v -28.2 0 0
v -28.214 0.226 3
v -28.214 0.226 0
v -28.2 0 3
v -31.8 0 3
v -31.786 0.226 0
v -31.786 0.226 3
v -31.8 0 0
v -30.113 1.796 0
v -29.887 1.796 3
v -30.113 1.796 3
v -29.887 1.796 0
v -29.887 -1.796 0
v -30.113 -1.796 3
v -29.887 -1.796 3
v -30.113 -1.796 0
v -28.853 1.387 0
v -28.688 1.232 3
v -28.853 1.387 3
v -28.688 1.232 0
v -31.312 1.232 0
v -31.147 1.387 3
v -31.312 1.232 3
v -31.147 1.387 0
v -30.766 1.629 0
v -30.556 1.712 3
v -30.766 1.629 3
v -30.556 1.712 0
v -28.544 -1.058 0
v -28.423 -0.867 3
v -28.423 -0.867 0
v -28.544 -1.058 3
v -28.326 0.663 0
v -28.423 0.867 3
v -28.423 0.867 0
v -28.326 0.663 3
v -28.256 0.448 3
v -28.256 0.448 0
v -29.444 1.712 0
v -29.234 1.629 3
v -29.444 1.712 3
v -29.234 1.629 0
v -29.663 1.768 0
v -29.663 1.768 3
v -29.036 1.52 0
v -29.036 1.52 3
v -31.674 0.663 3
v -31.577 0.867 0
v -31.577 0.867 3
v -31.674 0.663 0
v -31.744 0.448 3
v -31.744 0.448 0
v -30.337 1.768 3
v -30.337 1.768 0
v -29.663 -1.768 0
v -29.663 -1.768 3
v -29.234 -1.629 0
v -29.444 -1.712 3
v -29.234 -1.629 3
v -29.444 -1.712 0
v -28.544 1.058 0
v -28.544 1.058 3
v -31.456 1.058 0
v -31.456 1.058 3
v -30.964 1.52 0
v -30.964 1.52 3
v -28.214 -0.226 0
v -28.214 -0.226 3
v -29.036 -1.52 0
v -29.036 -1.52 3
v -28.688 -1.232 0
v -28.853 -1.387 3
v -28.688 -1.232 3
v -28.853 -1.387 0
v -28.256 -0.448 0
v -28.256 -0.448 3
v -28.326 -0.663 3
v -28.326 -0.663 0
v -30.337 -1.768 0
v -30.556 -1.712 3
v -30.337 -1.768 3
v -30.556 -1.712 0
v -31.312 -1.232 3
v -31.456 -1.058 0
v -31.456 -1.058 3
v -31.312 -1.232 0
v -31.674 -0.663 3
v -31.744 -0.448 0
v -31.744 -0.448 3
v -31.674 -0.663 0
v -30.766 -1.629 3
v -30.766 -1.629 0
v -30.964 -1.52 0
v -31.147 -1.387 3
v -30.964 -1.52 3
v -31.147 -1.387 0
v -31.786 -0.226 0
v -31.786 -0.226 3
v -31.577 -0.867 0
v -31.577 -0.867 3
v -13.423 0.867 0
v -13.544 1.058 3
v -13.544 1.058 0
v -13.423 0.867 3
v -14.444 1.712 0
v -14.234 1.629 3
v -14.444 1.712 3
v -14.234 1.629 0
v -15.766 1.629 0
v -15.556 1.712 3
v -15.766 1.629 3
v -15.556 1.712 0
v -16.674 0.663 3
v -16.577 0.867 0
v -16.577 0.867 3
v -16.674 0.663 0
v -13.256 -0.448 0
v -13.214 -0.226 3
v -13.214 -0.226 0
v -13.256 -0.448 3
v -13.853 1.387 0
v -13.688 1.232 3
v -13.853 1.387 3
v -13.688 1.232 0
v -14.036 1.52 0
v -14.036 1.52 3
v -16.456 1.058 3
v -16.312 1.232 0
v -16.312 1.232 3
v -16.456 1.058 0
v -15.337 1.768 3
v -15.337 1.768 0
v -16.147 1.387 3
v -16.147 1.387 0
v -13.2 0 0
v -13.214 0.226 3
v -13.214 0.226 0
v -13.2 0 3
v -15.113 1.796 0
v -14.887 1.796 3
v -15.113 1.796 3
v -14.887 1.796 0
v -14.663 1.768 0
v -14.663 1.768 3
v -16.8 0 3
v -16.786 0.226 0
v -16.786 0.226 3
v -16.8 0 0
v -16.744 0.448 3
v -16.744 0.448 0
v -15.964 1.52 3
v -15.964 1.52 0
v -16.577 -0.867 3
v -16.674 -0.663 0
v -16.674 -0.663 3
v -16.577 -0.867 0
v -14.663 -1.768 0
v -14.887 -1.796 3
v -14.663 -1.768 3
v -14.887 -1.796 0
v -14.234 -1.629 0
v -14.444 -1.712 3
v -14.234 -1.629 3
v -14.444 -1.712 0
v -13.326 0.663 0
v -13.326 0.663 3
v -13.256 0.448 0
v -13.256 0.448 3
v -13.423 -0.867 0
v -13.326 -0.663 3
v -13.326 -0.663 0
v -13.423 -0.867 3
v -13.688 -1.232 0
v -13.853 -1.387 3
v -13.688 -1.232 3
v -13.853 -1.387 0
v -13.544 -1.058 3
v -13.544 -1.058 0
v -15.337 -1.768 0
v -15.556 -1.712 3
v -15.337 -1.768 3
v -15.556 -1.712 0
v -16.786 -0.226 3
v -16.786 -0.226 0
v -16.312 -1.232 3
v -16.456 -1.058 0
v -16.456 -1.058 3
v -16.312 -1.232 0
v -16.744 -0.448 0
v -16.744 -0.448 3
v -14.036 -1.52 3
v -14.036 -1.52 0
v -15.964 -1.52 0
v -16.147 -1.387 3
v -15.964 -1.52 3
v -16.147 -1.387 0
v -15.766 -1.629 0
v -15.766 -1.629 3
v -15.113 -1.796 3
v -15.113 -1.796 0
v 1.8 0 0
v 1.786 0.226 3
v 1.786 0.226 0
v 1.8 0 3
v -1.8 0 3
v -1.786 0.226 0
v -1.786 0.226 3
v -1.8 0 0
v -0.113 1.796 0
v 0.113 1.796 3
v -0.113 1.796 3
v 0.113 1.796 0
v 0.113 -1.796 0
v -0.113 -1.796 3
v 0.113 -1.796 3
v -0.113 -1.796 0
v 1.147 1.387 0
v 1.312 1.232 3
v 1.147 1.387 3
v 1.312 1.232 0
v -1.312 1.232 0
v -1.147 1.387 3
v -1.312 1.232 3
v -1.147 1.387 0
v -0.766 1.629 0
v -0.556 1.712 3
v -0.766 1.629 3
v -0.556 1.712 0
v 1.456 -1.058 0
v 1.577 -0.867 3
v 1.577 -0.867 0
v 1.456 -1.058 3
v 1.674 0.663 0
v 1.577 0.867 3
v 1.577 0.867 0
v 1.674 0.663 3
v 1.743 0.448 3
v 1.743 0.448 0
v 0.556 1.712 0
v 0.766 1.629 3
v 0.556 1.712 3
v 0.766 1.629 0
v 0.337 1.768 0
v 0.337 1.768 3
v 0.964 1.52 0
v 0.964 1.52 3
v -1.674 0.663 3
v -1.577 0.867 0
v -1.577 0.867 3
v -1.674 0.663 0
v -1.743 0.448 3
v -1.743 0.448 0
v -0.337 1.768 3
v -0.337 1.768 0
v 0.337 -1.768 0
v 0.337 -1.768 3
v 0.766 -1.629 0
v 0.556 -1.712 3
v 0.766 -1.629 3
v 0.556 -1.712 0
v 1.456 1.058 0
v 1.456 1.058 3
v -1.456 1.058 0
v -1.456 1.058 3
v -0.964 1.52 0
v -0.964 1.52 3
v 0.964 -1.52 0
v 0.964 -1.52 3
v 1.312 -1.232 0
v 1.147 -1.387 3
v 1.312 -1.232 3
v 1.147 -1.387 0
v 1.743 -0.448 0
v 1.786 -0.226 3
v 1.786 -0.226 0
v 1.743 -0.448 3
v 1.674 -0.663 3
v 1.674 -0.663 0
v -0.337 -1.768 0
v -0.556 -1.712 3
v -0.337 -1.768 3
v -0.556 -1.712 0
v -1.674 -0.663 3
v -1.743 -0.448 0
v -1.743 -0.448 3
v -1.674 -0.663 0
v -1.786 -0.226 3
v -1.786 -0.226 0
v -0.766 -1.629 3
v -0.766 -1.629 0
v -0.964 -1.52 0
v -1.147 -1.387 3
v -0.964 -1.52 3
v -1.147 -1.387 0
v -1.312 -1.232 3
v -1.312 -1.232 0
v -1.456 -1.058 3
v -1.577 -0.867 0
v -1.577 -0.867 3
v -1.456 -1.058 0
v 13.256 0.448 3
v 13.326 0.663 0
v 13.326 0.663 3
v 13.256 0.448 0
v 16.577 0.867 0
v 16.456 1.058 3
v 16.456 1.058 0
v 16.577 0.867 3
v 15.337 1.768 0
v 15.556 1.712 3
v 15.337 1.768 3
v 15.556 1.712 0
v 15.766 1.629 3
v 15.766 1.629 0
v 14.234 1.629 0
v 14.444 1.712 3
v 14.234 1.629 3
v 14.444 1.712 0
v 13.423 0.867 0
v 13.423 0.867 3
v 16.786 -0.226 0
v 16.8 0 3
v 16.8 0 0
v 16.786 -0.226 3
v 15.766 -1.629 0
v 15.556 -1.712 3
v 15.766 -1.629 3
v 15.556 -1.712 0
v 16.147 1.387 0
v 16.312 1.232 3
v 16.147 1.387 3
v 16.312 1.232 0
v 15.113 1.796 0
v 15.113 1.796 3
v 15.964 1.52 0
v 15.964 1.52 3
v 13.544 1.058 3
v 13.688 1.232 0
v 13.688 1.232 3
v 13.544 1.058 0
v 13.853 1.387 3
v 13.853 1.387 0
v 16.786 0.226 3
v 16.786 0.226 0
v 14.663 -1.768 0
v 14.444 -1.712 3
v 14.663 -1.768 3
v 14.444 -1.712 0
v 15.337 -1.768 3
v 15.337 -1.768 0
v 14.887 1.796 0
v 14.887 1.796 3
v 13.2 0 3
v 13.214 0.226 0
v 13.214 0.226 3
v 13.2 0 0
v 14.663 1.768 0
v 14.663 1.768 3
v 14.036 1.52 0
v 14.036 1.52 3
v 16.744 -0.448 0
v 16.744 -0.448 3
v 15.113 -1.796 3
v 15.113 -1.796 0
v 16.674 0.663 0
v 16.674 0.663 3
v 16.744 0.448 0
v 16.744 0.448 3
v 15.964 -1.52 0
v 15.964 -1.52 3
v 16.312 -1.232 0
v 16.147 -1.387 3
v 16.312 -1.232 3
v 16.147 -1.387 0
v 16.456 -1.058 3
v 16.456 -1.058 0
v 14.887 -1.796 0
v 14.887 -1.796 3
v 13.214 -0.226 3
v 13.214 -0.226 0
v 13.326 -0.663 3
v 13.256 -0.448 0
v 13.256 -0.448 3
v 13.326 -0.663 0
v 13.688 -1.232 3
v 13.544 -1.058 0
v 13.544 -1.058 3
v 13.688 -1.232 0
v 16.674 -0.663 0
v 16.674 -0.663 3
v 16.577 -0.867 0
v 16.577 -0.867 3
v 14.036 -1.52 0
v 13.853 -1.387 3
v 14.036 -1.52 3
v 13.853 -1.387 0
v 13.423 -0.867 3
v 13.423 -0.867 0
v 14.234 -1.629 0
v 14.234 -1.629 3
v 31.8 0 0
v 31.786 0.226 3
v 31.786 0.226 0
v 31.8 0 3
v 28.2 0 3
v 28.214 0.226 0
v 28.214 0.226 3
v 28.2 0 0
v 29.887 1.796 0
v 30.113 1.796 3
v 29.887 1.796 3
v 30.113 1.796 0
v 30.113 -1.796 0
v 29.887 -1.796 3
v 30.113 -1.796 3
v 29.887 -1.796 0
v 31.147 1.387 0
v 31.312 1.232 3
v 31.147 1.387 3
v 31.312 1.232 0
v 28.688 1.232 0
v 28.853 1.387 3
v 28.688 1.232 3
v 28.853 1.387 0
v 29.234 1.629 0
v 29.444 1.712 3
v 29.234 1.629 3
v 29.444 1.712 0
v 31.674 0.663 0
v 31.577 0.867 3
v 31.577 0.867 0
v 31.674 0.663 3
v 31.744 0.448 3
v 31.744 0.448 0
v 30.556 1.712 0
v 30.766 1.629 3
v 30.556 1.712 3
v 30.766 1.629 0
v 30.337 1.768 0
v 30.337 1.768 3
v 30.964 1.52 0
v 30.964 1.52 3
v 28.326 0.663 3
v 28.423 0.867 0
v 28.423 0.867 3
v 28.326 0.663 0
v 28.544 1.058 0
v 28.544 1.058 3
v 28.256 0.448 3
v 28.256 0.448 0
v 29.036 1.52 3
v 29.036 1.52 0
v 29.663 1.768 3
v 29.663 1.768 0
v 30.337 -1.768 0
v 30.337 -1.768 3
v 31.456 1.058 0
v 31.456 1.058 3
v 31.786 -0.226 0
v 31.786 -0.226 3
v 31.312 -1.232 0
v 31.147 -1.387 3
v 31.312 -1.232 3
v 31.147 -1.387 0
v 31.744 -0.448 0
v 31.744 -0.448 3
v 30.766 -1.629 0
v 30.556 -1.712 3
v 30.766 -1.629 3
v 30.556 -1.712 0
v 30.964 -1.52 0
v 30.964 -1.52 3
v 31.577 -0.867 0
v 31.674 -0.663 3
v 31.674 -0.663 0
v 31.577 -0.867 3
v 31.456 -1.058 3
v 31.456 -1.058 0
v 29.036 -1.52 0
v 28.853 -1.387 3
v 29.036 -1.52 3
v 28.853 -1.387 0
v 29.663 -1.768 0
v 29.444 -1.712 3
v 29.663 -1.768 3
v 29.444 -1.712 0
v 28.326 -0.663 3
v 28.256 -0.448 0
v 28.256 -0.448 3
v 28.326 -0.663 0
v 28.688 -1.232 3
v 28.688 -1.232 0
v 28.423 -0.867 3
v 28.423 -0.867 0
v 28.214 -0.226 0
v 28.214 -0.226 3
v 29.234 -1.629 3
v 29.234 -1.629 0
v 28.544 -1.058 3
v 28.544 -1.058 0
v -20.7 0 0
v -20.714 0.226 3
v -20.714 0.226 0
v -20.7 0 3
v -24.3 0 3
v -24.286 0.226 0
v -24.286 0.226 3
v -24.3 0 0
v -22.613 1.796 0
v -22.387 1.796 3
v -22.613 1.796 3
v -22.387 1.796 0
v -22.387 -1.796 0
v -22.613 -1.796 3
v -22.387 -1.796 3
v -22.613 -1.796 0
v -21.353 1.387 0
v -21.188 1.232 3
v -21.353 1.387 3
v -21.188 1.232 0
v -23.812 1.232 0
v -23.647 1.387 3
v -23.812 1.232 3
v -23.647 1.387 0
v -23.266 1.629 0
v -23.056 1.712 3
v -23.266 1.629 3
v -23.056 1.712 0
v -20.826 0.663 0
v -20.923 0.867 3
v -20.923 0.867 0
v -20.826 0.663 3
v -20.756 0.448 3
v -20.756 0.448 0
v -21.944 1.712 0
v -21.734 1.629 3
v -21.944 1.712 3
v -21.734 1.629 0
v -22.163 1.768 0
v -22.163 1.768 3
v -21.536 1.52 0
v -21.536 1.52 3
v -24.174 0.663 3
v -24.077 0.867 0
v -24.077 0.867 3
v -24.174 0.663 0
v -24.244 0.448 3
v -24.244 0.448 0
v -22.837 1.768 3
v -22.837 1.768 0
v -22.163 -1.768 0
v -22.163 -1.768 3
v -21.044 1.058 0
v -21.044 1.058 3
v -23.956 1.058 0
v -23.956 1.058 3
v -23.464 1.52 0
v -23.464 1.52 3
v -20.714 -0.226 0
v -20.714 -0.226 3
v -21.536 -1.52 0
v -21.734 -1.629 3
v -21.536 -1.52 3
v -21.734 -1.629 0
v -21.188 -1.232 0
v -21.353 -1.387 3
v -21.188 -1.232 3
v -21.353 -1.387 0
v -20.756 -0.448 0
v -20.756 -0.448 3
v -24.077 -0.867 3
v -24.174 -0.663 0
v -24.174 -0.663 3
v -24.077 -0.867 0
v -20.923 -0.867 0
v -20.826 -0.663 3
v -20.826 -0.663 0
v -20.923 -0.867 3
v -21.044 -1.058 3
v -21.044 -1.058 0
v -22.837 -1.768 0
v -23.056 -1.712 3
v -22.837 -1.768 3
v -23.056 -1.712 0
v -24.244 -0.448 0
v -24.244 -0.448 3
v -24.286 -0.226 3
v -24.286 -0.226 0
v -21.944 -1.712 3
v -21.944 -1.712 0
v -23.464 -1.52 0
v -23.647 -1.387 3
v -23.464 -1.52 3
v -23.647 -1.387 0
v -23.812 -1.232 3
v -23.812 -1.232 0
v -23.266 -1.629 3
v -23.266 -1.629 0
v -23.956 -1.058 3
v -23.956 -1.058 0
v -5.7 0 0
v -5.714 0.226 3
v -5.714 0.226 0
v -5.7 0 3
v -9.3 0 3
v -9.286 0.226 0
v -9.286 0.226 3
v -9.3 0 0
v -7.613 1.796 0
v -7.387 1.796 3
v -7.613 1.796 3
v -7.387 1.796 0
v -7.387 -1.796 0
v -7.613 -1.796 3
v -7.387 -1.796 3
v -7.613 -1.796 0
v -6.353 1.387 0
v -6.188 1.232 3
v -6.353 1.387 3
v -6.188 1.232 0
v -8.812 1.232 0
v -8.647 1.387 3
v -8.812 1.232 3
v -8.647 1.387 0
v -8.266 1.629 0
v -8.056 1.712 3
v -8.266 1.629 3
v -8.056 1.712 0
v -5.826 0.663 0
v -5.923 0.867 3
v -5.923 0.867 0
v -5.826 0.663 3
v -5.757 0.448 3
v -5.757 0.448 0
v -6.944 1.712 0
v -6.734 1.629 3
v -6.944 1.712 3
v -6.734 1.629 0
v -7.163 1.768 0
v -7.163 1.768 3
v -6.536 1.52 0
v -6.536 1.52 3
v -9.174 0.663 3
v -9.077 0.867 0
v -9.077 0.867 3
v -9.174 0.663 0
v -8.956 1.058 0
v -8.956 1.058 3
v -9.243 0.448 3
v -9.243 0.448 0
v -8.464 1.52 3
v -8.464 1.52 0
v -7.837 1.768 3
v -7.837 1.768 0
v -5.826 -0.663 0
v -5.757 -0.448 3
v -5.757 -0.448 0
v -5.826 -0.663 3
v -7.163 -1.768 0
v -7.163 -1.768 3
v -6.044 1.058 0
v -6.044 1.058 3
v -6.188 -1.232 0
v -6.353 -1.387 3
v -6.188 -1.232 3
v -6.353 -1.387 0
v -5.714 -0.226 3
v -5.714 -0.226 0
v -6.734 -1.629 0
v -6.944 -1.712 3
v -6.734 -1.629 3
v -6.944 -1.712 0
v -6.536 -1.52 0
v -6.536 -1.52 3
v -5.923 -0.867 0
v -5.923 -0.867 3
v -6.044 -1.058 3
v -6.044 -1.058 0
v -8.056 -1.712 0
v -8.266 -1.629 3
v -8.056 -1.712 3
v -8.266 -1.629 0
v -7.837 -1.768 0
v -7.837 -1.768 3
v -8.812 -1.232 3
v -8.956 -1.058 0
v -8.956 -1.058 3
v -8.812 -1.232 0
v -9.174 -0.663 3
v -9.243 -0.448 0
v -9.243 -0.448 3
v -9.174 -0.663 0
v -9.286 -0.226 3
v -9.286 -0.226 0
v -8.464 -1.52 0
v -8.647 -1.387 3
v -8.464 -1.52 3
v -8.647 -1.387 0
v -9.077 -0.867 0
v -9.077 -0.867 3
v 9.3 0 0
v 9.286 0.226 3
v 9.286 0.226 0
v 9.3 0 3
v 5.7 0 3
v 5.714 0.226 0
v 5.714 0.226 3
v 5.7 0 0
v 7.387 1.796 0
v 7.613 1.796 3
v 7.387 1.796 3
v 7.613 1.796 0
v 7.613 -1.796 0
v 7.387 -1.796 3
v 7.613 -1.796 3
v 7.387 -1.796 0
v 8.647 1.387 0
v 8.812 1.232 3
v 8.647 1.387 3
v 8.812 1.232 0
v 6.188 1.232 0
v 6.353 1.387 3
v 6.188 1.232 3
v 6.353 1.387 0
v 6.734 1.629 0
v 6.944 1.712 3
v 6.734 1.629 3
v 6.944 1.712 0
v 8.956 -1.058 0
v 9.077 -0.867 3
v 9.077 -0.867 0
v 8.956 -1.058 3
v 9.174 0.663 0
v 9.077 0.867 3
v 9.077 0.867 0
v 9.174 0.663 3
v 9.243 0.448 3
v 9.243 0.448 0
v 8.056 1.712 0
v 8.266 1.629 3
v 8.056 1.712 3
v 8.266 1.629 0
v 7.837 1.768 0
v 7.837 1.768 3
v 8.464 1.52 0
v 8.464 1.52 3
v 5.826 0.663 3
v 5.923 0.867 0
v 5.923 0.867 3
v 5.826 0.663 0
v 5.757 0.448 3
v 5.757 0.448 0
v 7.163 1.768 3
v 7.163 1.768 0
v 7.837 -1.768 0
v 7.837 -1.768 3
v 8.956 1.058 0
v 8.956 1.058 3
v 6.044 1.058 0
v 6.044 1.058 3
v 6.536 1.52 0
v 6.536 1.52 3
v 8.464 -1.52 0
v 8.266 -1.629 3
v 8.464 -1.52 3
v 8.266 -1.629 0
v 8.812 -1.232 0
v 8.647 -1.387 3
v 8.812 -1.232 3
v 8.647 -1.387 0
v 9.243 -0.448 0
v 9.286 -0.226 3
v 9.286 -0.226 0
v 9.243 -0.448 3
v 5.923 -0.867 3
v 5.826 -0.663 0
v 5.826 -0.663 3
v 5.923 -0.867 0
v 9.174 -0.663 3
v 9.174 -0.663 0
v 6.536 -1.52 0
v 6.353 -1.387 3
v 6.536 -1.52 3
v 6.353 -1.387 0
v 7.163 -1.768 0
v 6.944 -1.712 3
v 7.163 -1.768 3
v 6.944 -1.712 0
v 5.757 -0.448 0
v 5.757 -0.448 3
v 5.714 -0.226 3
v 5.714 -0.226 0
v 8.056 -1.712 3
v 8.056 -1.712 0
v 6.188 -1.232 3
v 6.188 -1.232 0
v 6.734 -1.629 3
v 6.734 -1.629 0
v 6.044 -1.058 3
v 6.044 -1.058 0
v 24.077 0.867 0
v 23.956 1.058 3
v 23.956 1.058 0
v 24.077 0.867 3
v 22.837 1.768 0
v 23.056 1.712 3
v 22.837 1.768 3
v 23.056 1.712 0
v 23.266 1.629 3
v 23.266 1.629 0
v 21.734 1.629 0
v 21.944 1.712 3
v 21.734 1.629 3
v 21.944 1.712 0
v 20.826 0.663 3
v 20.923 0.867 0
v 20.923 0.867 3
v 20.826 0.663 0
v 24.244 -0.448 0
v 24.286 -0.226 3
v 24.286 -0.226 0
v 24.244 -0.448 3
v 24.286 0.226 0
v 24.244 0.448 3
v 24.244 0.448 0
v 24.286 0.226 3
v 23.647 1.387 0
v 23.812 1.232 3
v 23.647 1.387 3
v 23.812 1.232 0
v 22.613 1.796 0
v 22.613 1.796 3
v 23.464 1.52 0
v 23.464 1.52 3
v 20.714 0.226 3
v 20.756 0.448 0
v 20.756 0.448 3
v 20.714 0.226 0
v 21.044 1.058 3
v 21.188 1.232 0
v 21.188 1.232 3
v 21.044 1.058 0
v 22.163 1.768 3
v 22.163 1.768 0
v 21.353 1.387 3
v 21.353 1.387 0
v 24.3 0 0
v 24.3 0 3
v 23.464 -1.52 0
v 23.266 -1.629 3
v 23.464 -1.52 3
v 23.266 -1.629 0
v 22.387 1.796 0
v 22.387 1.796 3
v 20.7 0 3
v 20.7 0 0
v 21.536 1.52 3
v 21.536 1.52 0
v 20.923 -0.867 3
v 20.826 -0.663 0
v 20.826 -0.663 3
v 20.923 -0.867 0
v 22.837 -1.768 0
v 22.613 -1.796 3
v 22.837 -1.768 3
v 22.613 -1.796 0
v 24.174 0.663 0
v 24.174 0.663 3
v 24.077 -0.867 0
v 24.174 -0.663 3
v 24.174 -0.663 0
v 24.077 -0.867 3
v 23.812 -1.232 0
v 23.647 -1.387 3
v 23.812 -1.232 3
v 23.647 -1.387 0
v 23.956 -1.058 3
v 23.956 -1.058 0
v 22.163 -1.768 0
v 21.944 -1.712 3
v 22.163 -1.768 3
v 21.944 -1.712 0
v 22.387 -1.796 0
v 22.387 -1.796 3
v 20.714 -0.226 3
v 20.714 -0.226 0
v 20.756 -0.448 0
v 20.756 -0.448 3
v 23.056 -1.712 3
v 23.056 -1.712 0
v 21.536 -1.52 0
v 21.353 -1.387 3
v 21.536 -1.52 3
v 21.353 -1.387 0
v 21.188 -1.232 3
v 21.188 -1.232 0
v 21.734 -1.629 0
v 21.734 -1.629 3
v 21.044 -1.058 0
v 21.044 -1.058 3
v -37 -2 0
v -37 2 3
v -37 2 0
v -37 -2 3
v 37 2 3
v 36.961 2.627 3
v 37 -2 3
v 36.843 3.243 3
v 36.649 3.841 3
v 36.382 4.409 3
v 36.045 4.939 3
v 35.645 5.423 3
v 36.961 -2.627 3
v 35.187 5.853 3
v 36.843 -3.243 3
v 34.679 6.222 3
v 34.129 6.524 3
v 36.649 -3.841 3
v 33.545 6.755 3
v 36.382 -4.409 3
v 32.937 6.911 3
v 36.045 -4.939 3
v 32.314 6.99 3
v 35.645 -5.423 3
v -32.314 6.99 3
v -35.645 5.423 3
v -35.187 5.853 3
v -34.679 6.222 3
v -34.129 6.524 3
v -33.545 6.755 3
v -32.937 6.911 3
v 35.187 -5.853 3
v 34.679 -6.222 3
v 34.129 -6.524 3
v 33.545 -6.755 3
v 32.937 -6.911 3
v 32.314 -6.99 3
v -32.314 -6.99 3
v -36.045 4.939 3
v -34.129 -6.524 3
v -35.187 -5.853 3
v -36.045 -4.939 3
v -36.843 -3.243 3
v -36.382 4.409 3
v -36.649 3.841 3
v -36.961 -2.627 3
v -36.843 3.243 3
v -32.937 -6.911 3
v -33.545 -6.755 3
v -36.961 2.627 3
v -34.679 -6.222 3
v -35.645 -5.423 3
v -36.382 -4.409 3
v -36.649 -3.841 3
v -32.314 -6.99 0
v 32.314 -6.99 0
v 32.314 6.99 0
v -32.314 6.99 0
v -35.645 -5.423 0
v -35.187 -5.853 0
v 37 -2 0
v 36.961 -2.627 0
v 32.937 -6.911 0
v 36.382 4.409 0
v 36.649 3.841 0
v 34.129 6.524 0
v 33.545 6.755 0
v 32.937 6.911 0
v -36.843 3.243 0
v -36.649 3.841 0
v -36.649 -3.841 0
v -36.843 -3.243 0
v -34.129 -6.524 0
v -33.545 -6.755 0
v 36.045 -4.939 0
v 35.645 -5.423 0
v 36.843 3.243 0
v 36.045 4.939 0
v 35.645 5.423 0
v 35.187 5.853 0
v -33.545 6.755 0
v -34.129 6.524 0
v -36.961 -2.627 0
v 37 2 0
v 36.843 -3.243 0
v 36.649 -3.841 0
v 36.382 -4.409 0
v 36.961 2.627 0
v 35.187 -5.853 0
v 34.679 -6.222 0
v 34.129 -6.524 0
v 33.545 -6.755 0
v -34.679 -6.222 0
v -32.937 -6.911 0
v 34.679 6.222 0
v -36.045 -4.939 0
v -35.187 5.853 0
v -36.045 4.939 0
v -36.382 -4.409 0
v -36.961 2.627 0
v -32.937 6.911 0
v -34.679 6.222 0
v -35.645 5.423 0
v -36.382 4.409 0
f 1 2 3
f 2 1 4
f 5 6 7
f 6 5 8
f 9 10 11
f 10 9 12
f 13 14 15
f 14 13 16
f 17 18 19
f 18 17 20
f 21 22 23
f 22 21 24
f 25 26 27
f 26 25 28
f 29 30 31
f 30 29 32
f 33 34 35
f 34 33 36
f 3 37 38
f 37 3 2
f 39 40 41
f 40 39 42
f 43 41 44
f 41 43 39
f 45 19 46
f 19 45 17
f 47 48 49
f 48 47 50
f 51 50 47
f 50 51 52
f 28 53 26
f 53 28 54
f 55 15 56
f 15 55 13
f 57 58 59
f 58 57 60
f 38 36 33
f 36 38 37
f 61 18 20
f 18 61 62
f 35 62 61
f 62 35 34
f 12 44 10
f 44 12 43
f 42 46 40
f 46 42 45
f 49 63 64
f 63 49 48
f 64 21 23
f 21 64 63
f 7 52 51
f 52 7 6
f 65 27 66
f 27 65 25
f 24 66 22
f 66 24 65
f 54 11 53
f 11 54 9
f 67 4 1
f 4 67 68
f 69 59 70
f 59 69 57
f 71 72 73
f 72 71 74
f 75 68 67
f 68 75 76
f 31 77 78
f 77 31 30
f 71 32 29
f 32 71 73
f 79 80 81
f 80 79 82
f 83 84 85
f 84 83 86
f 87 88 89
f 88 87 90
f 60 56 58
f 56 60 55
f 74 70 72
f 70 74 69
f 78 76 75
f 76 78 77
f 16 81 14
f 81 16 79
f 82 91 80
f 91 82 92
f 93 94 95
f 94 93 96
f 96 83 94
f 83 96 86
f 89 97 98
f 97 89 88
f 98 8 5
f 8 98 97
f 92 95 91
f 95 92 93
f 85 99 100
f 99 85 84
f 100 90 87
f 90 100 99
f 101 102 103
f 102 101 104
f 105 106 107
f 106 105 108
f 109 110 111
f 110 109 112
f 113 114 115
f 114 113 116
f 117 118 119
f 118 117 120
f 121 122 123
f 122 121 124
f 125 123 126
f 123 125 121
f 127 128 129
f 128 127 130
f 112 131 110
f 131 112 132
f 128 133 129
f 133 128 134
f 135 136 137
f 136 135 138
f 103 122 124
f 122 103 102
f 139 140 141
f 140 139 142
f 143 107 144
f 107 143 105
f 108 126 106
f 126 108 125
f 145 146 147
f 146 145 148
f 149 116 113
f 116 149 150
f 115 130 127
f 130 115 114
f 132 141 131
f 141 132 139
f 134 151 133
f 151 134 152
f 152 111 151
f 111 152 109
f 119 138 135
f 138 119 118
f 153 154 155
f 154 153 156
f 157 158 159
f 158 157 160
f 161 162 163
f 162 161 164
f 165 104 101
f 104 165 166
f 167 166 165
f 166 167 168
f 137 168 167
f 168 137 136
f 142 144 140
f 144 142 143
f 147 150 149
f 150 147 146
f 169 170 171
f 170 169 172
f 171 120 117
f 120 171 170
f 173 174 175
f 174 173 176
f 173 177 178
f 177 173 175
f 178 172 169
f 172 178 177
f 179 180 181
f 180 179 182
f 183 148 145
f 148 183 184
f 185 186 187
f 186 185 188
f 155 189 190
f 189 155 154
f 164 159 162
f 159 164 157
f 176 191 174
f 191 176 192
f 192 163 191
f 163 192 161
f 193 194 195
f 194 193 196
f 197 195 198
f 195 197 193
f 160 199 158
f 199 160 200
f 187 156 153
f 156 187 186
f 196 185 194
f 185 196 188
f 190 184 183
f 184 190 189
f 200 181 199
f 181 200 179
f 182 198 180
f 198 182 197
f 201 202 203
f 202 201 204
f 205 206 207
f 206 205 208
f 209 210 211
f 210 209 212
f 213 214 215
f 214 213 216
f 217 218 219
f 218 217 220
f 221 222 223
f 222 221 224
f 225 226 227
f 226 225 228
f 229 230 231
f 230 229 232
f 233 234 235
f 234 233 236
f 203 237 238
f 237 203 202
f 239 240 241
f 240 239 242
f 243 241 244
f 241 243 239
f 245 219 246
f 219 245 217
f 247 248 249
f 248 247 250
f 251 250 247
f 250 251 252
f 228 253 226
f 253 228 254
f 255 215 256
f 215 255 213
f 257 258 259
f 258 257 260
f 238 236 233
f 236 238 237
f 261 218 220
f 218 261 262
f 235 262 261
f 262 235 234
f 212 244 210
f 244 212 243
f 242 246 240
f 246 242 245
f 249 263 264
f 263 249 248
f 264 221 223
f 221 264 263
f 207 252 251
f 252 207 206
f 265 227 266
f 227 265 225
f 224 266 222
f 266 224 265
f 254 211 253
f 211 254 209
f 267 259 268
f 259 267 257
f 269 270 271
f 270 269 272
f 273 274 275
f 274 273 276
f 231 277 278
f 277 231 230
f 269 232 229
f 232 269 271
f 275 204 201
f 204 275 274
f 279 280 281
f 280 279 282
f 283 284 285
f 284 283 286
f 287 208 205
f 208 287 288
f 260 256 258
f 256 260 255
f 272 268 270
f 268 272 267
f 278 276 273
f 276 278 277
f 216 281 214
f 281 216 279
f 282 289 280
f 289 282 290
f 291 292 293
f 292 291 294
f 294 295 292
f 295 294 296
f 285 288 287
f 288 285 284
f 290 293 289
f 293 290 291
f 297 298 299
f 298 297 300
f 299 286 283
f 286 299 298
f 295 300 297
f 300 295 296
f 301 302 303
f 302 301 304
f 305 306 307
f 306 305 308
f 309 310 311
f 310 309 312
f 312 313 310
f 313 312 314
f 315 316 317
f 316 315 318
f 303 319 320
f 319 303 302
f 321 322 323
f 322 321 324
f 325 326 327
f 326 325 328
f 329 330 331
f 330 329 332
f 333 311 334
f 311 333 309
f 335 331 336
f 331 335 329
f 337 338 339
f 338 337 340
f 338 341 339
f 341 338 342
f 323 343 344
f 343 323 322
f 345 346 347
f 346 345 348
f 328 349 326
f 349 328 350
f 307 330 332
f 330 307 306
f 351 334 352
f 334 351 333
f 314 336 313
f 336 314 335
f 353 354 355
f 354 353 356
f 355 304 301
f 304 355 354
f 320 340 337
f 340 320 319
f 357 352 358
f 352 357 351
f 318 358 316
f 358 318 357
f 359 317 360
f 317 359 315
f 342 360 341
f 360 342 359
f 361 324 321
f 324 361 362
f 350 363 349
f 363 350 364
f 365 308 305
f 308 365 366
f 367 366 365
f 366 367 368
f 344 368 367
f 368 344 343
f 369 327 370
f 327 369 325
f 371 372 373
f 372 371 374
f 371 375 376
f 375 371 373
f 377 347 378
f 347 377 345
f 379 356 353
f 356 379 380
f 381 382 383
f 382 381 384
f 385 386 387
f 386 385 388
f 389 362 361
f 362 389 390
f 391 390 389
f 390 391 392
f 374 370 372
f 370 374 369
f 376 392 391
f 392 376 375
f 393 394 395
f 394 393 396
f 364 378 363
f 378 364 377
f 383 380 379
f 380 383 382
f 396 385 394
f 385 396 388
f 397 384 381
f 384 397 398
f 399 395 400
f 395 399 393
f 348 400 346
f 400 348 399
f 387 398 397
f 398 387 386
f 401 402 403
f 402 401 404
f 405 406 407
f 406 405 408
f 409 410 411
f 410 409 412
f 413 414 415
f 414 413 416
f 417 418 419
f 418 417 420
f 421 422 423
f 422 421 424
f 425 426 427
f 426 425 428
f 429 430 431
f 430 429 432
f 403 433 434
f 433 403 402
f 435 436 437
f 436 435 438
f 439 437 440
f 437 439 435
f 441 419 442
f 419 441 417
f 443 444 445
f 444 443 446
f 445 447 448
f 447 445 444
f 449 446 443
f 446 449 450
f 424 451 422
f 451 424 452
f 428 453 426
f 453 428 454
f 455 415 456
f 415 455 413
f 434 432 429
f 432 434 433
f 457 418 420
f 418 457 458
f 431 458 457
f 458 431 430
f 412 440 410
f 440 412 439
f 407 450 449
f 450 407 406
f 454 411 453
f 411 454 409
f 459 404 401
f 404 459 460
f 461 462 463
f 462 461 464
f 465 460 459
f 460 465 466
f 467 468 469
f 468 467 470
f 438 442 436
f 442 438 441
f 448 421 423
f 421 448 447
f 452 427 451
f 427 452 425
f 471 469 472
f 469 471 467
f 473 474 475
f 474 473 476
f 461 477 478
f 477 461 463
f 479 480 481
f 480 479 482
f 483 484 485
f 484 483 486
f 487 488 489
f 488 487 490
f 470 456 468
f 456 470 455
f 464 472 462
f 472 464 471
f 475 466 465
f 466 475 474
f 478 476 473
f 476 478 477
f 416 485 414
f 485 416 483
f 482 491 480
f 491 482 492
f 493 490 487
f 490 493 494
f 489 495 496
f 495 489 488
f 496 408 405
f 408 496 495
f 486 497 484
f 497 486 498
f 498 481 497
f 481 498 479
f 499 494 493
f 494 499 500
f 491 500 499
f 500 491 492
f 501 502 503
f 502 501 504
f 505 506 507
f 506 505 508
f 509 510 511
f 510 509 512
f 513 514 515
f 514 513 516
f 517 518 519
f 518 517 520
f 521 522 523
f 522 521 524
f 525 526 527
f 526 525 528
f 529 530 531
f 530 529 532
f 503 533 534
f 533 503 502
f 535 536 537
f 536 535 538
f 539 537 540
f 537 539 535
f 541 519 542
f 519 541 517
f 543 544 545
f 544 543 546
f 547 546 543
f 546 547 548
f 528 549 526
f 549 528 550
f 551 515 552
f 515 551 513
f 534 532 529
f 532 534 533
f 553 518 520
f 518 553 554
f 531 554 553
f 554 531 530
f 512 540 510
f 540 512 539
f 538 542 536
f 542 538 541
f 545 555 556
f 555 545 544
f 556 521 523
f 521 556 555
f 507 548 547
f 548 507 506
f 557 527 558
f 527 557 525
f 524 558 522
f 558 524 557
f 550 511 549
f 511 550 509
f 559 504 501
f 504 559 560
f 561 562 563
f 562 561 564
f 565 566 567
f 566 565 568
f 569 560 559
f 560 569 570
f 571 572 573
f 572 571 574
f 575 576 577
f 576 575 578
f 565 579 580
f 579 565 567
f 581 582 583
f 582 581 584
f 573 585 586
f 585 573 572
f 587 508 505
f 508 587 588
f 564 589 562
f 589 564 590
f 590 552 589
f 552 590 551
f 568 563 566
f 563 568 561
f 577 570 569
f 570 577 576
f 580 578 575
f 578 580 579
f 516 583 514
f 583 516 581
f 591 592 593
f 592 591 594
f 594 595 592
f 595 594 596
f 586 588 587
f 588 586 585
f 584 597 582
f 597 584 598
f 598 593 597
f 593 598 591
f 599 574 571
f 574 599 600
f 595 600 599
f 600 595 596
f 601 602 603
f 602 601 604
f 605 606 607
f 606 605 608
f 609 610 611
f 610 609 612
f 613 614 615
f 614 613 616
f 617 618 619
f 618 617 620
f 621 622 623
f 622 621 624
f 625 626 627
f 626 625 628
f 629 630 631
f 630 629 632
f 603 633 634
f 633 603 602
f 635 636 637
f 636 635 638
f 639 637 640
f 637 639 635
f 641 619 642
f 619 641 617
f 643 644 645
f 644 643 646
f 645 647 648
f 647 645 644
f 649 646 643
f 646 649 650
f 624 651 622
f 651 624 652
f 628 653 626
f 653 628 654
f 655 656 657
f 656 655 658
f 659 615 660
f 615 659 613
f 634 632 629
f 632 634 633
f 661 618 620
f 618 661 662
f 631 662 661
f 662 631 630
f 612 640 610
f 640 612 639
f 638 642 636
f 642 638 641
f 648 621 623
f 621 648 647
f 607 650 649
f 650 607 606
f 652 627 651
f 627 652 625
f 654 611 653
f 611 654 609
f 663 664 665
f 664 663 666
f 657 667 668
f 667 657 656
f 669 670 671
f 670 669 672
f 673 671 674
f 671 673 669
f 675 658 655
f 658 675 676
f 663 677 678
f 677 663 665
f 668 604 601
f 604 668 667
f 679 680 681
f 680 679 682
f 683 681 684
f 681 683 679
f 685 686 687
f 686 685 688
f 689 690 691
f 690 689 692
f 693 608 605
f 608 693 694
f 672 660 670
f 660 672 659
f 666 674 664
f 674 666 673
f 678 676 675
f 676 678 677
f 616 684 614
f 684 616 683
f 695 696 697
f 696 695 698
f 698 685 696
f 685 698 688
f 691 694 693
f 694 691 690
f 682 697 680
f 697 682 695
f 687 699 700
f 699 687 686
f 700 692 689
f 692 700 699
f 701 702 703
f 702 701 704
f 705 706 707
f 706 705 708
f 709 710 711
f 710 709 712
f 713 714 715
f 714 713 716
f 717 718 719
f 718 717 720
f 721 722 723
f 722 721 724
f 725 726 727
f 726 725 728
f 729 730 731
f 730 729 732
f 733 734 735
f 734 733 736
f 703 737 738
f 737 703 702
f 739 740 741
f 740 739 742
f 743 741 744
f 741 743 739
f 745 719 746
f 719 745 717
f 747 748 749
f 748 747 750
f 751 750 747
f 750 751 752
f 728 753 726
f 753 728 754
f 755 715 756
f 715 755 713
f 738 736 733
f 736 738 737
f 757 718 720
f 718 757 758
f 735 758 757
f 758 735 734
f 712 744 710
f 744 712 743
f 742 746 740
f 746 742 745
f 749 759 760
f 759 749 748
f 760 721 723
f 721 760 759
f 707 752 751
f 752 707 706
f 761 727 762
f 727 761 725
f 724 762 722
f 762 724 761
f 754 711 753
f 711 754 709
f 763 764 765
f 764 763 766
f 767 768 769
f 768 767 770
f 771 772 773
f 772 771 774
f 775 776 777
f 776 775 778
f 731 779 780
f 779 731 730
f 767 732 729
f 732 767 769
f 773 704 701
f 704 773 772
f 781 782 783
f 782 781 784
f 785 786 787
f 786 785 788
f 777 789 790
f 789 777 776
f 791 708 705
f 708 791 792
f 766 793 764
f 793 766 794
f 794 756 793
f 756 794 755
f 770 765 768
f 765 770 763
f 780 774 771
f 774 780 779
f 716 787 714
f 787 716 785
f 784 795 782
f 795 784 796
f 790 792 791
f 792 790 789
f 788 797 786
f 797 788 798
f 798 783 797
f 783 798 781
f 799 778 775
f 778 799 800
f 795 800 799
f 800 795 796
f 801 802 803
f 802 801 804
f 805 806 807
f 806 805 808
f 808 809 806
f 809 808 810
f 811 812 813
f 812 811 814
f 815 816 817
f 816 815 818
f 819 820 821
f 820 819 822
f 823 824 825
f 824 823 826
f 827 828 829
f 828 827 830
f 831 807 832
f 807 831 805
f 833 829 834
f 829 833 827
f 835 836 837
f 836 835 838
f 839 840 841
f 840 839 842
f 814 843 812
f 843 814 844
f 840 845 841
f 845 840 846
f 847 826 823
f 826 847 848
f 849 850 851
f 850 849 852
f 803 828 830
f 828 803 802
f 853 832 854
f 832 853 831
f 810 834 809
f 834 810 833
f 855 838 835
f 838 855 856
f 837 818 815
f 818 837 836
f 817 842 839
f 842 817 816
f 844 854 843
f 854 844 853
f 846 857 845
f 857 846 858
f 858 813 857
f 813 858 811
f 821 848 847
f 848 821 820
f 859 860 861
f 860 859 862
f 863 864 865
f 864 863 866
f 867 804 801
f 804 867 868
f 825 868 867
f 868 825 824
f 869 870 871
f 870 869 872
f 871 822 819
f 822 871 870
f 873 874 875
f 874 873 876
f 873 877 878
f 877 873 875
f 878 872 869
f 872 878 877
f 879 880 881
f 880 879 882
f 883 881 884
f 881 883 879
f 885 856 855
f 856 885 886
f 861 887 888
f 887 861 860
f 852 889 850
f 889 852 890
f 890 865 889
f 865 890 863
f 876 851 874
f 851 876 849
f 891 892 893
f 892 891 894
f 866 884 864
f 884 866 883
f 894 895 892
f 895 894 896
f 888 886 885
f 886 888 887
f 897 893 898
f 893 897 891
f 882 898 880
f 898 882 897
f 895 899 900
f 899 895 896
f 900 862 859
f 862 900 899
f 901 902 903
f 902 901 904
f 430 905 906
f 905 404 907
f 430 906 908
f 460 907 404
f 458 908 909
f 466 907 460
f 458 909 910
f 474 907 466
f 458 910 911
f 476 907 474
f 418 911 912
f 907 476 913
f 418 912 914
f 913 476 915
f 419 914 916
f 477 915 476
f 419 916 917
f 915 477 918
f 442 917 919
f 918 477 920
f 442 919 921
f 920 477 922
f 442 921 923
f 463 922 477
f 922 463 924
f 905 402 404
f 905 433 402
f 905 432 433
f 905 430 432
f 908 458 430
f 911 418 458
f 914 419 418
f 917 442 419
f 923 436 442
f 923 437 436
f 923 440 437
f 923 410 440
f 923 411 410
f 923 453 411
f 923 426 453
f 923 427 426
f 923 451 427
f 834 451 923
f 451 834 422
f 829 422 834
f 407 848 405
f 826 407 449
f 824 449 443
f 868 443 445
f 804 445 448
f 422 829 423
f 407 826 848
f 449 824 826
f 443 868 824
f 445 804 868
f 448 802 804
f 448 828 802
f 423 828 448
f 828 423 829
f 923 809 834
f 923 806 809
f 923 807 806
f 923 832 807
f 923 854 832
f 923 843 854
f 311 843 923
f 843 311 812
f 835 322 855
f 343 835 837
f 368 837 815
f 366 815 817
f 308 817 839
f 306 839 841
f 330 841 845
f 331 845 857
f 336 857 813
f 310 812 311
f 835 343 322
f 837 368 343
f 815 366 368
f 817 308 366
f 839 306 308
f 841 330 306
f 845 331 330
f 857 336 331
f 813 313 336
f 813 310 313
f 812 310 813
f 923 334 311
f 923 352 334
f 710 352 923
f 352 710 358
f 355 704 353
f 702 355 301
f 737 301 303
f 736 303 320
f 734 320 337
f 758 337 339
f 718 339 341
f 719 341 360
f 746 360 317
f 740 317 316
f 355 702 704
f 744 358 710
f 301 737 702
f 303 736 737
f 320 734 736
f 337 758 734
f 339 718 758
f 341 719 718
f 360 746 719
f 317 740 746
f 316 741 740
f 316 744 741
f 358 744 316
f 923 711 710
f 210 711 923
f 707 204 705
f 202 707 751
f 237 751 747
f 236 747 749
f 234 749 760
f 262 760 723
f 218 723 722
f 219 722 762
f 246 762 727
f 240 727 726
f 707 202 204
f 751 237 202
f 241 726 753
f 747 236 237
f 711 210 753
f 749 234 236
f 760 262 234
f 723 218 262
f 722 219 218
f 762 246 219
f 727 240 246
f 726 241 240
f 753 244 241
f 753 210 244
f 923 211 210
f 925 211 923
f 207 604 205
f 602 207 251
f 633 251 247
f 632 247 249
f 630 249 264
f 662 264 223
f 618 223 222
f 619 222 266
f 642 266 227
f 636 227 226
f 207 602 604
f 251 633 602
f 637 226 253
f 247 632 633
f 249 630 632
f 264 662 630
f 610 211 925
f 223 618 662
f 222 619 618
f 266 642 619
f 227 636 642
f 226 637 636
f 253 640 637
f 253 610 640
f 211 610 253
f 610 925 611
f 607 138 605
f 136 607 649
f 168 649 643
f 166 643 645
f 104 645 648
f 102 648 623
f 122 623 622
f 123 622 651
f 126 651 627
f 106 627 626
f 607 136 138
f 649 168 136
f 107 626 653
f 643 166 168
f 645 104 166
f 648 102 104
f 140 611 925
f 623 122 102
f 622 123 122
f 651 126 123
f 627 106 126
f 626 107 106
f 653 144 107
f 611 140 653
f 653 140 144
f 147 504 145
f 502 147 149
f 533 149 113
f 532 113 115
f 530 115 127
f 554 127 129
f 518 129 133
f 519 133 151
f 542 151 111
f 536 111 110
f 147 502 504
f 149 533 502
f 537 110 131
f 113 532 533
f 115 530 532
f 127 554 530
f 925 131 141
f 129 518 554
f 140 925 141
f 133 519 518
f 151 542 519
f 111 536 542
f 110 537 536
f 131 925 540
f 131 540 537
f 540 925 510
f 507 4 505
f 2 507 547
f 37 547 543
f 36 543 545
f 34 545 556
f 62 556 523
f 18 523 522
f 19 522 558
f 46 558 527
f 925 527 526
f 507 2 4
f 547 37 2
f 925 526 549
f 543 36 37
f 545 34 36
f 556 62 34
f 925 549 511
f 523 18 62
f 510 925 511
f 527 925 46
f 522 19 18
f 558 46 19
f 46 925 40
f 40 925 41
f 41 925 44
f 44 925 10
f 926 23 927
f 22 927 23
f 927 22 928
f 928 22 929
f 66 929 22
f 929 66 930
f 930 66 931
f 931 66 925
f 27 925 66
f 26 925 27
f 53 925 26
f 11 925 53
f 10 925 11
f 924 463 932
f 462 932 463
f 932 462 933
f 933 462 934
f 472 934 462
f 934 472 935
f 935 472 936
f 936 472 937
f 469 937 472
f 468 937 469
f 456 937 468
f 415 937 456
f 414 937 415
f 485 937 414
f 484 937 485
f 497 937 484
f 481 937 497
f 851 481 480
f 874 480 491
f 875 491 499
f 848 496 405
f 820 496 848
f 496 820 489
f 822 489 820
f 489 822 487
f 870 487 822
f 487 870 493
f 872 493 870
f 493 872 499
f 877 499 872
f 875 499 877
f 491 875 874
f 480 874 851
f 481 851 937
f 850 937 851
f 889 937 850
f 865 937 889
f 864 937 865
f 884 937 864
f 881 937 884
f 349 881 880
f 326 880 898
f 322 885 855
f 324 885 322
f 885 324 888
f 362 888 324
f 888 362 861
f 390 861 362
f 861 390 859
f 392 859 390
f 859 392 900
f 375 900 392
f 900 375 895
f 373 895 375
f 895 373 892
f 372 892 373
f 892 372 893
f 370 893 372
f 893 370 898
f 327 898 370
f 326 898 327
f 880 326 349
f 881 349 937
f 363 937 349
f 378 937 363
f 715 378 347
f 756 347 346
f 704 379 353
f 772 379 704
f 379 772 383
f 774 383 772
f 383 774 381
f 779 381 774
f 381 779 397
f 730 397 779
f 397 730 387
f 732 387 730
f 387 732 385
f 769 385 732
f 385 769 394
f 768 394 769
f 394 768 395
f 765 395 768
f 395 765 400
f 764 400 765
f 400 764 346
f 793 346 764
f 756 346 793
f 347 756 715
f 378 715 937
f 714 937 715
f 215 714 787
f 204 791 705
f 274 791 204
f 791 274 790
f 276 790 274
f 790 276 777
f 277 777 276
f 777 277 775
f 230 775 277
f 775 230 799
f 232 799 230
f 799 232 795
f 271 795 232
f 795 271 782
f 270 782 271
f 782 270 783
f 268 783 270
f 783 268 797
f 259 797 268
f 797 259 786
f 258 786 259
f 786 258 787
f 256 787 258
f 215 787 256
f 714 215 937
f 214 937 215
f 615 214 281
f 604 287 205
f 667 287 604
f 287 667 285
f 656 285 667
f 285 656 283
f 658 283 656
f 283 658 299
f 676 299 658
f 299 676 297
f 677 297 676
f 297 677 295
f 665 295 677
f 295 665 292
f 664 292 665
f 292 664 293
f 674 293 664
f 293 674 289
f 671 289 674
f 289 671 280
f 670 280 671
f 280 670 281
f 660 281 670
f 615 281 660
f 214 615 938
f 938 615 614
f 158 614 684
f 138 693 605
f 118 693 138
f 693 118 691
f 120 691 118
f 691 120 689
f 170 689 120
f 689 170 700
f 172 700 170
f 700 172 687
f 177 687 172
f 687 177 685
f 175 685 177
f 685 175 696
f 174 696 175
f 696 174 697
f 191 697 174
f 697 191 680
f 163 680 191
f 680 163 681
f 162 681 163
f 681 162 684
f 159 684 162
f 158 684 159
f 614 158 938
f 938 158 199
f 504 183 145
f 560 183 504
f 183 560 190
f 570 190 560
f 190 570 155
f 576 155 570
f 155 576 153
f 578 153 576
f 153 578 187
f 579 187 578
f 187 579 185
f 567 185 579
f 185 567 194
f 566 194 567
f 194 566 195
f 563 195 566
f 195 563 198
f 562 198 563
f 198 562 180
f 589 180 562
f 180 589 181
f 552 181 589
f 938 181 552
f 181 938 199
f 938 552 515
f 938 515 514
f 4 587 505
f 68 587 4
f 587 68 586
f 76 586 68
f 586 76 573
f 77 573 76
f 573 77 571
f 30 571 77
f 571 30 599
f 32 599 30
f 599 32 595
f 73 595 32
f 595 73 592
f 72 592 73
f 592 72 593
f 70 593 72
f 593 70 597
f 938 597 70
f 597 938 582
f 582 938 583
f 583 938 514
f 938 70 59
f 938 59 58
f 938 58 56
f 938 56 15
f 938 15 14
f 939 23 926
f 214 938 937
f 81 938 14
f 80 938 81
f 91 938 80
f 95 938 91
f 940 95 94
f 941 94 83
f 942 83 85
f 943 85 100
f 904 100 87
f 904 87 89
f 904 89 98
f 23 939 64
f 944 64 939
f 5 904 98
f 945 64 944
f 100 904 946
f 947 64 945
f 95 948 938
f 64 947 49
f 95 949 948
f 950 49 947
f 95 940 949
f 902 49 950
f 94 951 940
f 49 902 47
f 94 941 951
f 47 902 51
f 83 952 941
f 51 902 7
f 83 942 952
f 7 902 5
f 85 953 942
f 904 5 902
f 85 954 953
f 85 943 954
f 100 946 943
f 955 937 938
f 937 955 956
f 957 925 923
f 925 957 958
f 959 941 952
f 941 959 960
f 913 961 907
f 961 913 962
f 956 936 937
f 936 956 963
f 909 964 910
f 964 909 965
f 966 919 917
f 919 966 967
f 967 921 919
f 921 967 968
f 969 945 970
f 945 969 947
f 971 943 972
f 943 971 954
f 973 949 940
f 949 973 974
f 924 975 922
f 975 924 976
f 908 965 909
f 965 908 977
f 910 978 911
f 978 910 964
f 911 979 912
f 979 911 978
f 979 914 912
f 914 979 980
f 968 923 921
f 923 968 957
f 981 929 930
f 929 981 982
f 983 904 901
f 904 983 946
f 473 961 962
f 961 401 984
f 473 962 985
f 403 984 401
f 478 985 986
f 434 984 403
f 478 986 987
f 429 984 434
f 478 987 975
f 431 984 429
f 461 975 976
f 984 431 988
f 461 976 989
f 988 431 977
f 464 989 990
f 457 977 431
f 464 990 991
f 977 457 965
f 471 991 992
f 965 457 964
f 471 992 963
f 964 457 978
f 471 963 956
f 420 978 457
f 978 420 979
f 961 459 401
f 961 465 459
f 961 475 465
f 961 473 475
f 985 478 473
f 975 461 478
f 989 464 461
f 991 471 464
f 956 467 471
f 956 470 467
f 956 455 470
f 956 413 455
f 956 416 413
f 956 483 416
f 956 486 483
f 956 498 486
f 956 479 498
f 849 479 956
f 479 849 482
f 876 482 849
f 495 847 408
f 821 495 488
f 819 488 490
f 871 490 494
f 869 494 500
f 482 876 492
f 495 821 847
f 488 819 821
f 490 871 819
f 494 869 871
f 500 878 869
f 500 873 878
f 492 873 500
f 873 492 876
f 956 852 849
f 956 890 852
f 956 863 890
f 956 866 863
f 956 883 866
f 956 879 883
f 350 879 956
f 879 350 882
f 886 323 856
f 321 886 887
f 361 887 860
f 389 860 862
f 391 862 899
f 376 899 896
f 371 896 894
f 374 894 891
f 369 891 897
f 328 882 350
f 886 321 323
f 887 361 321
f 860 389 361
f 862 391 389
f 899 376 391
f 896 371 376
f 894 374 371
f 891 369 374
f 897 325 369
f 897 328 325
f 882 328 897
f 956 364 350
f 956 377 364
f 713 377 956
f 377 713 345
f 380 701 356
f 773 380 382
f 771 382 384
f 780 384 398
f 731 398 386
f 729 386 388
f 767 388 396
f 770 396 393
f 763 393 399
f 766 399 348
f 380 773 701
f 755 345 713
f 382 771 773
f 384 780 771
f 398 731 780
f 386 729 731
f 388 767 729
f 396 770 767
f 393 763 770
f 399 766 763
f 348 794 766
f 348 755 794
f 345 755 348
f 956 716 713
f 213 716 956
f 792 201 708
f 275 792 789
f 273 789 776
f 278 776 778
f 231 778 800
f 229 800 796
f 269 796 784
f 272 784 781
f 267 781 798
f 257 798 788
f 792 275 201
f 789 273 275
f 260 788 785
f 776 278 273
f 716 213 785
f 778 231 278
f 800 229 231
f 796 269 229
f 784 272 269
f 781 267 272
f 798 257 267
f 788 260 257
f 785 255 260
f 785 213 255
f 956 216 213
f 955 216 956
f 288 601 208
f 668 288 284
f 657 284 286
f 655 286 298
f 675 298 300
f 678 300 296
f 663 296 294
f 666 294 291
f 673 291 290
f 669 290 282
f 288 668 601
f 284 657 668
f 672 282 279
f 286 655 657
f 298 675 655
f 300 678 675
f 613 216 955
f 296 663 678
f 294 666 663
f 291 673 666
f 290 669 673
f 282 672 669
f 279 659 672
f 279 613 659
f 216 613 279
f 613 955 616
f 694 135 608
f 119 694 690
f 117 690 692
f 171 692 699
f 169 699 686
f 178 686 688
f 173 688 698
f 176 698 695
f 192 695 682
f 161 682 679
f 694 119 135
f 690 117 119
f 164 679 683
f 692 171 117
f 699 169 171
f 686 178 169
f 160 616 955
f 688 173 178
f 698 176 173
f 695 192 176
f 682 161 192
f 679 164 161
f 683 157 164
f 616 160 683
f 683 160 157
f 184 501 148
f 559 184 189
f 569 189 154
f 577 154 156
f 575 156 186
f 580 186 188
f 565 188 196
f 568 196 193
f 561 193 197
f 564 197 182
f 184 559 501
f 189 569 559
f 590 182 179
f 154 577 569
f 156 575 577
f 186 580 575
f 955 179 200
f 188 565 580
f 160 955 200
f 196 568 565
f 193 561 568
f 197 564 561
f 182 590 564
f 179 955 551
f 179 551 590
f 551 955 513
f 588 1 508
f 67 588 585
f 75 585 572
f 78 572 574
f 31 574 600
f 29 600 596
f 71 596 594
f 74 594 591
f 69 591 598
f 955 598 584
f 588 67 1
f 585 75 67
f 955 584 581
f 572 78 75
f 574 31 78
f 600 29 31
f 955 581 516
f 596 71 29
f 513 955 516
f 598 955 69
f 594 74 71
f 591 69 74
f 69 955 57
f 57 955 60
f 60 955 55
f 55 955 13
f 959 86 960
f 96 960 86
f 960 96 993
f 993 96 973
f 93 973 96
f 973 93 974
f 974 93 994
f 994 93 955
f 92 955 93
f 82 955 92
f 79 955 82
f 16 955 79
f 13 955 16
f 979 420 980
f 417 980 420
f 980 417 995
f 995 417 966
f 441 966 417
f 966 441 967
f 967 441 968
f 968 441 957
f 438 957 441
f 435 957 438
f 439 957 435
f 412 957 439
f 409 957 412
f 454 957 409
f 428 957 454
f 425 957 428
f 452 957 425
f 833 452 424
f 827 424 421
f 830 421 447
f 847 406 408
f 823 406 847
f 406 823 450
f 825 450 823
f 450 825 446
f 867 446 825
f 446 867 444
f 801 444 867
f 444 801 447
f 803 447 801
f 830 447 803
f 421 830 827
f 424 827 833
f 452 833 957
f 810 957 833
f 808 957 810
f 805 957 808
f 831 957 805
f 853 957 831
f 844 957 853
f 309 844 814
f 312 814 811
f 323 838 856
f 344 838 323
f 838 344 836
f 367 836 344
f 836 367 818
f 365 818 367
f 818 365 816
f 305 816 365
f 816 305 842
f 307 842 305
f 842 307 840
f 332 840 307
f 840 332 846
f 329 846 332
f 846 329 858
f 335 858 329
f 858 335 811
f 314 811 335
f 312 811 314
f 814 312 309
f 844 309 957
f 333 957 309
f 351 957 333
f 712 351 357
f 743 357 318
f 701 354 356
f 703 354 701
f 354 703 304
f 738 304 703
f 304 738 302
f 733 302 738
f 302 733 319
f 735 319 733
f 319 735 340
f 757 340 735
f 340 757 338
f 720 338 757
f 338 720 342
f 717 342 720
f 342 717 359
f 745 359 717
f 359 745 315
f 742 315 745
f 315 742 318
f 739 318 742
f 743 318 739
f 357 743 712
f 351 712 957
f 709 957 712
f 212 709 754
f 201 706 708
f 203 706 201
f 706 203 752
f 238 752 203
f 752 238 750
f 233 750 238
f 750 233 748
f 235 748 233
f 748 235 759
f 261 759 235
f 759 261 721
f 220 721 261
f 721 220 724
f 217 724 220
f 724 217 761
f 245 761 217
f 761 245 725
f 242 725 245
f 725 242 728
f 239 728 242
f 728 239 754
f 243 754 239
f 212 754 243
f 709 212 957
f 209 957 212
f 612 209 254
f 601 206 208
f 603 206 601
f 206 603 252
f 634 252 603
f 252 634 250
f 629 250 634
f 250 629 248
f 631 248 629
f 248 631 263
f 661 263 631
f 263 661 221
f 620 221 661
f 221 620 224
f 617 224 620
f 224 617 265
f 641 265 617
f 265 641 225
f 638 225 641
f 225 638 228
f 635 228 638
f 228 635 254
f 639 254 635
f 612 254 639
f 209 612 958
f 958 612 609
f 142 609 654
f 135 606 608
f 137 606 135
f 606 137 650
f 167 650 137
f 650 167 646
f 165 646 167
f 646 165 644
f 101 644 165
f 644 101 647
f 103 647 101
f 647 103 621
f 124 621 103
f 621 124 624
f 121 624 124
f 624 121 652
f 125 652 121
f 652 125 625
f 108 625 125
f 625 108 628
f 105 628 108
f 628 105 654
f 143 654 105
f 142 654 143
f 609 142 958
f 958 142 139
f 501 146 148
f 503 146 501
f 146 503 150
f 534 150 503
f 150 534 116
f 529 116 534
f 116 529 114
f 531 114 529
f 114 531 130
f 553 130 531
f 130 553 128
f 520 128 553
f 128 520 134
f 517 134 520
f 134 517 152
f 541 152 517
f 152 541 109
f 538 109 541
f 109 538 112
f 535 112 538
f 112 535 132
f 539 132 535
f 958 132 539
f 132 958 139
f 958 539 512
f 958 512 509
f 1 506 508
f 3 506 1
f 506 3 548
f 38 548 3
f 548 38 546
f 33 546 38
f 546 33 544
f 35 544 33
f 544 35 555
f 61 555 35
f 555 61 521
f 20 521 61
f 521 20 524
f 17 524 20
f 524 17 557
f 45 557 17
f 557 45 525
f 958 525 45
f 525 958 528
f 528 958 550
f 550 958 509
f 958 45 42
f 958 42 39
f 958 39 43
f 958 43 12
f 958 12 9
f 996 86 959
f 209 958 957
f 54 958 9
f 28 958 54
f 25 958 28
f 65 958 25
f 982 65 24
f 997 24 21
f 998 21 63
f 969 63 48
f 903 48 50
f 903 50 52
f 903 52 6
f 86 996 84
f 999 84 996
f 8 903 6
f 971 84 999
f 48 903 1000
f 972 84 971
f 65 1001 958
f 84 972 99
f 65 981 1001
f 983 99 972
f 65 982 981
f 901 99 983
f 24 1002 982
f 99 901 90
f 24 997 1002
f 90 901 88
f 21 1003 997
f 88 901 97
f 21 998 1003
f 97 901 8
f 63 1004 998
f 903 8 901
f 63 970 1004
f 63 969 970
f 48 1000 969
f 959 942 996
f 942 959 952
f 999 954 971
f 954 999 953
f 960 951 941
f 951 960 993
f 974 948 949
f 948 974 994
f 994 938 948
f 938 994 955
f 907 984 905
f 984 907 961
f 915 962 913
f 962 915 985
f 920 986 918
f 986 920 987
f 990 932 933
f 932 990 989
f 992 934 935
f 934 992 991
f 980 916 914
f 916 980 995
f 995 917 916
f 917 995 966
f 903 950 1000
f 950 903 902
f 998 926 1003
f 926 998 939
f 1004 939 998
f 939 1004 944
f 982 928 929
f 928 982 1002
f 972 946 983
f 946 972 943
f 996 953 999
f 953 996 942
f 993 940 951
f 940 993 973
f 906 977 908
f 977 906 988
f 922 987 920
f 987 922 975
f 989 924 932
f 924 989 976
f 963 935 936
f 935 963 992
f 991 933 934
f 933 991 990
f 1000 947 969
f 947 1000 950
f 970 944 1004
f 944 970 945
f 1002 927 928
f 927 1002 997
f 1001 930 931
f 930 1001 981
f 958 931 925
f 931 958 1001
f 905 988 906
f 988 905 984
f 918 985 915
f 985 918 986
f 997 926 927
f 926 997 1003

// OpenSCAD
$fn = 50;


difference() {
	union() {
		hull() {
			translate(v = [-32.0000000000, 2.0000000000, 0]) {
				cylinder(h = 3, r = 5);
			}
			translate(v = [32.0000000000, 2.0000000000, 0]) {
				cylinder(h = 3, r = 5);
			}
			translate(v = [-32.0000000000, -2.0000000000, 0]) {
				cylinder(h = 3, r = 5);
			}
			translate(v = [32.0000000000, -2.0000000000, 0]) {
				cylinder(h = 3, r = 5);
			}
		}
	}
	union() {
		translate(v = [-30.0000000000, 0.0000000000, -100.0000000000]) {
			cylinder(h = 200, r = 1.8000000000);
		}
		translate(v = [-15.0000000000, 0.0000000000, -100.0000000000]) {
			cylinder(h = 200, r = 1.8000000000);
		}
		translate(v = [0.0000000000, 0.0000000000, -100.0000000000]) {
			cylinder(h = 200, r = 1.8000000000);
		}
		translate(v = [15.0000000000, 0.0000000000, -100.0000000000]) {
			cylinder(h = 200, r = 1.8000000000);
		}
		translate(v = [30.0000000000, 0.0000000000, -100.0000000000]) {
			cylinder(h = 200, r = 1.8000000000);
		}
		translate(v = [-30.0000000000, 0.0000000000, 0]) {
			cylinder(h = 3, r = 1.8000000000);
		}
		translate(v = [-22.5000000000, 0.0000000000, 0]) {
			cylinder(h = 3, r = 1.8000000000);
		}
		translate(v = [-15.0000000000, 0.0000000000, 0]) {
			cylinder(h = 3, r = 1.8000000000);
		}
		translate(v = [-7.5000000000, 0.0000000000, 0]) {
			cylinder(h = 3, r = 1.8000000000);
		}
		cylinder(h = 3, r = 1.8000000000);
		translate(v = [7.5000000000, 0.0000000000, 0]) {
			cylinder(h = 3, r = 1.8000000000);
		}
		translate(v = [15.0000000000, 0.0000000000, 0]) {
			cylinder(h = 3, r = 1.8000000000);
		}
		translate(v = [22.5000000000, 0.0000000000, 0]) {
			cylinder(h = 3, r = 1.8000000000);
		}
		translate(v = [30.0000000000, 0.0000000000, 0]) {
			cylinder(h = 3, r = 1.8000000000);
		}
		translate(v = [-30.0000000000, 0.0000000000, 0]) {
			cylinder(h = 3, r = 1.8000000000);
		}
		translate(v = [-22.5000000000, 0.0000000000, 0]) {
			cylinder(h = 3, r = 1.8000000000);
		}
		translate(v = [-15.0000000000, 0.0000000000, 0]) {
			cylinder(h = 3, r = 1.8000000000);
		}
		translate(v = [-7.5000000000, 0.0000000000, 0]) {
			cylinder(h = 3, r = 1.8000000000);
		}
		cylinder(h = 3, r = 1.8000000000);
		translate(v = [7.5000000000, 0.0000000000, 0]) {
			cylinder(h = 3, r = 1.8000000000);
		}
		translate(v = [15.0000000000, 0.0000000000, 0]) {
			cylinder(h = 3, r = 1.8000000000);
		}
		translate(v = [22.5000000000, 0.0000000000, 0]) {
			cylinder(h = 3, r = 1.8000000000);
		}
		translate(v = [30.0000000000, 0.0000000000, 0]) {
			cylinder(h = 3, r = 1.8000000000);
		}
		translate(v = [-30.0000000000, 0.0000000000, 0]) {
			cylinder(h = 3, r = 1.8000000000);
		}
		translate(v = [-22.5000000000, 0.0000000000, 0]) {
			cylinder(h = 3, r = 1.8000000000);
		}
		translate(v = [-15.0000000000, 0.0000000000, 0]) {
			cylinder(h = 3, r = 1.8000000000);
		}
		translate(v = [-7.5000000000, 0.0000000000, 0]) {
			cylinder(h = 3, r = 1.8000000000);
		}
		cylinder(h = 3, r = 1.8000000000);
		translate(v = [7.5000000000, 0.0000000000, 0]) {
			cylinder(h = 3, r = 1.8000000000);
		}
		translate(v = [15.0000000000, 0.0000000000, 0]) {
			cylinder(h = 3, r = 1.8000000000);
		}
		translate(v = [22.5000000000, 0.0000000000, 0]) {
			cylinder(h = 3, r = 1.8000000000);
		}
		translate(v = [30.0000000000, 0.0000000000, 0]) {
			cylinder(h = 3, r = 1.8000000000);
		}
	}
}
